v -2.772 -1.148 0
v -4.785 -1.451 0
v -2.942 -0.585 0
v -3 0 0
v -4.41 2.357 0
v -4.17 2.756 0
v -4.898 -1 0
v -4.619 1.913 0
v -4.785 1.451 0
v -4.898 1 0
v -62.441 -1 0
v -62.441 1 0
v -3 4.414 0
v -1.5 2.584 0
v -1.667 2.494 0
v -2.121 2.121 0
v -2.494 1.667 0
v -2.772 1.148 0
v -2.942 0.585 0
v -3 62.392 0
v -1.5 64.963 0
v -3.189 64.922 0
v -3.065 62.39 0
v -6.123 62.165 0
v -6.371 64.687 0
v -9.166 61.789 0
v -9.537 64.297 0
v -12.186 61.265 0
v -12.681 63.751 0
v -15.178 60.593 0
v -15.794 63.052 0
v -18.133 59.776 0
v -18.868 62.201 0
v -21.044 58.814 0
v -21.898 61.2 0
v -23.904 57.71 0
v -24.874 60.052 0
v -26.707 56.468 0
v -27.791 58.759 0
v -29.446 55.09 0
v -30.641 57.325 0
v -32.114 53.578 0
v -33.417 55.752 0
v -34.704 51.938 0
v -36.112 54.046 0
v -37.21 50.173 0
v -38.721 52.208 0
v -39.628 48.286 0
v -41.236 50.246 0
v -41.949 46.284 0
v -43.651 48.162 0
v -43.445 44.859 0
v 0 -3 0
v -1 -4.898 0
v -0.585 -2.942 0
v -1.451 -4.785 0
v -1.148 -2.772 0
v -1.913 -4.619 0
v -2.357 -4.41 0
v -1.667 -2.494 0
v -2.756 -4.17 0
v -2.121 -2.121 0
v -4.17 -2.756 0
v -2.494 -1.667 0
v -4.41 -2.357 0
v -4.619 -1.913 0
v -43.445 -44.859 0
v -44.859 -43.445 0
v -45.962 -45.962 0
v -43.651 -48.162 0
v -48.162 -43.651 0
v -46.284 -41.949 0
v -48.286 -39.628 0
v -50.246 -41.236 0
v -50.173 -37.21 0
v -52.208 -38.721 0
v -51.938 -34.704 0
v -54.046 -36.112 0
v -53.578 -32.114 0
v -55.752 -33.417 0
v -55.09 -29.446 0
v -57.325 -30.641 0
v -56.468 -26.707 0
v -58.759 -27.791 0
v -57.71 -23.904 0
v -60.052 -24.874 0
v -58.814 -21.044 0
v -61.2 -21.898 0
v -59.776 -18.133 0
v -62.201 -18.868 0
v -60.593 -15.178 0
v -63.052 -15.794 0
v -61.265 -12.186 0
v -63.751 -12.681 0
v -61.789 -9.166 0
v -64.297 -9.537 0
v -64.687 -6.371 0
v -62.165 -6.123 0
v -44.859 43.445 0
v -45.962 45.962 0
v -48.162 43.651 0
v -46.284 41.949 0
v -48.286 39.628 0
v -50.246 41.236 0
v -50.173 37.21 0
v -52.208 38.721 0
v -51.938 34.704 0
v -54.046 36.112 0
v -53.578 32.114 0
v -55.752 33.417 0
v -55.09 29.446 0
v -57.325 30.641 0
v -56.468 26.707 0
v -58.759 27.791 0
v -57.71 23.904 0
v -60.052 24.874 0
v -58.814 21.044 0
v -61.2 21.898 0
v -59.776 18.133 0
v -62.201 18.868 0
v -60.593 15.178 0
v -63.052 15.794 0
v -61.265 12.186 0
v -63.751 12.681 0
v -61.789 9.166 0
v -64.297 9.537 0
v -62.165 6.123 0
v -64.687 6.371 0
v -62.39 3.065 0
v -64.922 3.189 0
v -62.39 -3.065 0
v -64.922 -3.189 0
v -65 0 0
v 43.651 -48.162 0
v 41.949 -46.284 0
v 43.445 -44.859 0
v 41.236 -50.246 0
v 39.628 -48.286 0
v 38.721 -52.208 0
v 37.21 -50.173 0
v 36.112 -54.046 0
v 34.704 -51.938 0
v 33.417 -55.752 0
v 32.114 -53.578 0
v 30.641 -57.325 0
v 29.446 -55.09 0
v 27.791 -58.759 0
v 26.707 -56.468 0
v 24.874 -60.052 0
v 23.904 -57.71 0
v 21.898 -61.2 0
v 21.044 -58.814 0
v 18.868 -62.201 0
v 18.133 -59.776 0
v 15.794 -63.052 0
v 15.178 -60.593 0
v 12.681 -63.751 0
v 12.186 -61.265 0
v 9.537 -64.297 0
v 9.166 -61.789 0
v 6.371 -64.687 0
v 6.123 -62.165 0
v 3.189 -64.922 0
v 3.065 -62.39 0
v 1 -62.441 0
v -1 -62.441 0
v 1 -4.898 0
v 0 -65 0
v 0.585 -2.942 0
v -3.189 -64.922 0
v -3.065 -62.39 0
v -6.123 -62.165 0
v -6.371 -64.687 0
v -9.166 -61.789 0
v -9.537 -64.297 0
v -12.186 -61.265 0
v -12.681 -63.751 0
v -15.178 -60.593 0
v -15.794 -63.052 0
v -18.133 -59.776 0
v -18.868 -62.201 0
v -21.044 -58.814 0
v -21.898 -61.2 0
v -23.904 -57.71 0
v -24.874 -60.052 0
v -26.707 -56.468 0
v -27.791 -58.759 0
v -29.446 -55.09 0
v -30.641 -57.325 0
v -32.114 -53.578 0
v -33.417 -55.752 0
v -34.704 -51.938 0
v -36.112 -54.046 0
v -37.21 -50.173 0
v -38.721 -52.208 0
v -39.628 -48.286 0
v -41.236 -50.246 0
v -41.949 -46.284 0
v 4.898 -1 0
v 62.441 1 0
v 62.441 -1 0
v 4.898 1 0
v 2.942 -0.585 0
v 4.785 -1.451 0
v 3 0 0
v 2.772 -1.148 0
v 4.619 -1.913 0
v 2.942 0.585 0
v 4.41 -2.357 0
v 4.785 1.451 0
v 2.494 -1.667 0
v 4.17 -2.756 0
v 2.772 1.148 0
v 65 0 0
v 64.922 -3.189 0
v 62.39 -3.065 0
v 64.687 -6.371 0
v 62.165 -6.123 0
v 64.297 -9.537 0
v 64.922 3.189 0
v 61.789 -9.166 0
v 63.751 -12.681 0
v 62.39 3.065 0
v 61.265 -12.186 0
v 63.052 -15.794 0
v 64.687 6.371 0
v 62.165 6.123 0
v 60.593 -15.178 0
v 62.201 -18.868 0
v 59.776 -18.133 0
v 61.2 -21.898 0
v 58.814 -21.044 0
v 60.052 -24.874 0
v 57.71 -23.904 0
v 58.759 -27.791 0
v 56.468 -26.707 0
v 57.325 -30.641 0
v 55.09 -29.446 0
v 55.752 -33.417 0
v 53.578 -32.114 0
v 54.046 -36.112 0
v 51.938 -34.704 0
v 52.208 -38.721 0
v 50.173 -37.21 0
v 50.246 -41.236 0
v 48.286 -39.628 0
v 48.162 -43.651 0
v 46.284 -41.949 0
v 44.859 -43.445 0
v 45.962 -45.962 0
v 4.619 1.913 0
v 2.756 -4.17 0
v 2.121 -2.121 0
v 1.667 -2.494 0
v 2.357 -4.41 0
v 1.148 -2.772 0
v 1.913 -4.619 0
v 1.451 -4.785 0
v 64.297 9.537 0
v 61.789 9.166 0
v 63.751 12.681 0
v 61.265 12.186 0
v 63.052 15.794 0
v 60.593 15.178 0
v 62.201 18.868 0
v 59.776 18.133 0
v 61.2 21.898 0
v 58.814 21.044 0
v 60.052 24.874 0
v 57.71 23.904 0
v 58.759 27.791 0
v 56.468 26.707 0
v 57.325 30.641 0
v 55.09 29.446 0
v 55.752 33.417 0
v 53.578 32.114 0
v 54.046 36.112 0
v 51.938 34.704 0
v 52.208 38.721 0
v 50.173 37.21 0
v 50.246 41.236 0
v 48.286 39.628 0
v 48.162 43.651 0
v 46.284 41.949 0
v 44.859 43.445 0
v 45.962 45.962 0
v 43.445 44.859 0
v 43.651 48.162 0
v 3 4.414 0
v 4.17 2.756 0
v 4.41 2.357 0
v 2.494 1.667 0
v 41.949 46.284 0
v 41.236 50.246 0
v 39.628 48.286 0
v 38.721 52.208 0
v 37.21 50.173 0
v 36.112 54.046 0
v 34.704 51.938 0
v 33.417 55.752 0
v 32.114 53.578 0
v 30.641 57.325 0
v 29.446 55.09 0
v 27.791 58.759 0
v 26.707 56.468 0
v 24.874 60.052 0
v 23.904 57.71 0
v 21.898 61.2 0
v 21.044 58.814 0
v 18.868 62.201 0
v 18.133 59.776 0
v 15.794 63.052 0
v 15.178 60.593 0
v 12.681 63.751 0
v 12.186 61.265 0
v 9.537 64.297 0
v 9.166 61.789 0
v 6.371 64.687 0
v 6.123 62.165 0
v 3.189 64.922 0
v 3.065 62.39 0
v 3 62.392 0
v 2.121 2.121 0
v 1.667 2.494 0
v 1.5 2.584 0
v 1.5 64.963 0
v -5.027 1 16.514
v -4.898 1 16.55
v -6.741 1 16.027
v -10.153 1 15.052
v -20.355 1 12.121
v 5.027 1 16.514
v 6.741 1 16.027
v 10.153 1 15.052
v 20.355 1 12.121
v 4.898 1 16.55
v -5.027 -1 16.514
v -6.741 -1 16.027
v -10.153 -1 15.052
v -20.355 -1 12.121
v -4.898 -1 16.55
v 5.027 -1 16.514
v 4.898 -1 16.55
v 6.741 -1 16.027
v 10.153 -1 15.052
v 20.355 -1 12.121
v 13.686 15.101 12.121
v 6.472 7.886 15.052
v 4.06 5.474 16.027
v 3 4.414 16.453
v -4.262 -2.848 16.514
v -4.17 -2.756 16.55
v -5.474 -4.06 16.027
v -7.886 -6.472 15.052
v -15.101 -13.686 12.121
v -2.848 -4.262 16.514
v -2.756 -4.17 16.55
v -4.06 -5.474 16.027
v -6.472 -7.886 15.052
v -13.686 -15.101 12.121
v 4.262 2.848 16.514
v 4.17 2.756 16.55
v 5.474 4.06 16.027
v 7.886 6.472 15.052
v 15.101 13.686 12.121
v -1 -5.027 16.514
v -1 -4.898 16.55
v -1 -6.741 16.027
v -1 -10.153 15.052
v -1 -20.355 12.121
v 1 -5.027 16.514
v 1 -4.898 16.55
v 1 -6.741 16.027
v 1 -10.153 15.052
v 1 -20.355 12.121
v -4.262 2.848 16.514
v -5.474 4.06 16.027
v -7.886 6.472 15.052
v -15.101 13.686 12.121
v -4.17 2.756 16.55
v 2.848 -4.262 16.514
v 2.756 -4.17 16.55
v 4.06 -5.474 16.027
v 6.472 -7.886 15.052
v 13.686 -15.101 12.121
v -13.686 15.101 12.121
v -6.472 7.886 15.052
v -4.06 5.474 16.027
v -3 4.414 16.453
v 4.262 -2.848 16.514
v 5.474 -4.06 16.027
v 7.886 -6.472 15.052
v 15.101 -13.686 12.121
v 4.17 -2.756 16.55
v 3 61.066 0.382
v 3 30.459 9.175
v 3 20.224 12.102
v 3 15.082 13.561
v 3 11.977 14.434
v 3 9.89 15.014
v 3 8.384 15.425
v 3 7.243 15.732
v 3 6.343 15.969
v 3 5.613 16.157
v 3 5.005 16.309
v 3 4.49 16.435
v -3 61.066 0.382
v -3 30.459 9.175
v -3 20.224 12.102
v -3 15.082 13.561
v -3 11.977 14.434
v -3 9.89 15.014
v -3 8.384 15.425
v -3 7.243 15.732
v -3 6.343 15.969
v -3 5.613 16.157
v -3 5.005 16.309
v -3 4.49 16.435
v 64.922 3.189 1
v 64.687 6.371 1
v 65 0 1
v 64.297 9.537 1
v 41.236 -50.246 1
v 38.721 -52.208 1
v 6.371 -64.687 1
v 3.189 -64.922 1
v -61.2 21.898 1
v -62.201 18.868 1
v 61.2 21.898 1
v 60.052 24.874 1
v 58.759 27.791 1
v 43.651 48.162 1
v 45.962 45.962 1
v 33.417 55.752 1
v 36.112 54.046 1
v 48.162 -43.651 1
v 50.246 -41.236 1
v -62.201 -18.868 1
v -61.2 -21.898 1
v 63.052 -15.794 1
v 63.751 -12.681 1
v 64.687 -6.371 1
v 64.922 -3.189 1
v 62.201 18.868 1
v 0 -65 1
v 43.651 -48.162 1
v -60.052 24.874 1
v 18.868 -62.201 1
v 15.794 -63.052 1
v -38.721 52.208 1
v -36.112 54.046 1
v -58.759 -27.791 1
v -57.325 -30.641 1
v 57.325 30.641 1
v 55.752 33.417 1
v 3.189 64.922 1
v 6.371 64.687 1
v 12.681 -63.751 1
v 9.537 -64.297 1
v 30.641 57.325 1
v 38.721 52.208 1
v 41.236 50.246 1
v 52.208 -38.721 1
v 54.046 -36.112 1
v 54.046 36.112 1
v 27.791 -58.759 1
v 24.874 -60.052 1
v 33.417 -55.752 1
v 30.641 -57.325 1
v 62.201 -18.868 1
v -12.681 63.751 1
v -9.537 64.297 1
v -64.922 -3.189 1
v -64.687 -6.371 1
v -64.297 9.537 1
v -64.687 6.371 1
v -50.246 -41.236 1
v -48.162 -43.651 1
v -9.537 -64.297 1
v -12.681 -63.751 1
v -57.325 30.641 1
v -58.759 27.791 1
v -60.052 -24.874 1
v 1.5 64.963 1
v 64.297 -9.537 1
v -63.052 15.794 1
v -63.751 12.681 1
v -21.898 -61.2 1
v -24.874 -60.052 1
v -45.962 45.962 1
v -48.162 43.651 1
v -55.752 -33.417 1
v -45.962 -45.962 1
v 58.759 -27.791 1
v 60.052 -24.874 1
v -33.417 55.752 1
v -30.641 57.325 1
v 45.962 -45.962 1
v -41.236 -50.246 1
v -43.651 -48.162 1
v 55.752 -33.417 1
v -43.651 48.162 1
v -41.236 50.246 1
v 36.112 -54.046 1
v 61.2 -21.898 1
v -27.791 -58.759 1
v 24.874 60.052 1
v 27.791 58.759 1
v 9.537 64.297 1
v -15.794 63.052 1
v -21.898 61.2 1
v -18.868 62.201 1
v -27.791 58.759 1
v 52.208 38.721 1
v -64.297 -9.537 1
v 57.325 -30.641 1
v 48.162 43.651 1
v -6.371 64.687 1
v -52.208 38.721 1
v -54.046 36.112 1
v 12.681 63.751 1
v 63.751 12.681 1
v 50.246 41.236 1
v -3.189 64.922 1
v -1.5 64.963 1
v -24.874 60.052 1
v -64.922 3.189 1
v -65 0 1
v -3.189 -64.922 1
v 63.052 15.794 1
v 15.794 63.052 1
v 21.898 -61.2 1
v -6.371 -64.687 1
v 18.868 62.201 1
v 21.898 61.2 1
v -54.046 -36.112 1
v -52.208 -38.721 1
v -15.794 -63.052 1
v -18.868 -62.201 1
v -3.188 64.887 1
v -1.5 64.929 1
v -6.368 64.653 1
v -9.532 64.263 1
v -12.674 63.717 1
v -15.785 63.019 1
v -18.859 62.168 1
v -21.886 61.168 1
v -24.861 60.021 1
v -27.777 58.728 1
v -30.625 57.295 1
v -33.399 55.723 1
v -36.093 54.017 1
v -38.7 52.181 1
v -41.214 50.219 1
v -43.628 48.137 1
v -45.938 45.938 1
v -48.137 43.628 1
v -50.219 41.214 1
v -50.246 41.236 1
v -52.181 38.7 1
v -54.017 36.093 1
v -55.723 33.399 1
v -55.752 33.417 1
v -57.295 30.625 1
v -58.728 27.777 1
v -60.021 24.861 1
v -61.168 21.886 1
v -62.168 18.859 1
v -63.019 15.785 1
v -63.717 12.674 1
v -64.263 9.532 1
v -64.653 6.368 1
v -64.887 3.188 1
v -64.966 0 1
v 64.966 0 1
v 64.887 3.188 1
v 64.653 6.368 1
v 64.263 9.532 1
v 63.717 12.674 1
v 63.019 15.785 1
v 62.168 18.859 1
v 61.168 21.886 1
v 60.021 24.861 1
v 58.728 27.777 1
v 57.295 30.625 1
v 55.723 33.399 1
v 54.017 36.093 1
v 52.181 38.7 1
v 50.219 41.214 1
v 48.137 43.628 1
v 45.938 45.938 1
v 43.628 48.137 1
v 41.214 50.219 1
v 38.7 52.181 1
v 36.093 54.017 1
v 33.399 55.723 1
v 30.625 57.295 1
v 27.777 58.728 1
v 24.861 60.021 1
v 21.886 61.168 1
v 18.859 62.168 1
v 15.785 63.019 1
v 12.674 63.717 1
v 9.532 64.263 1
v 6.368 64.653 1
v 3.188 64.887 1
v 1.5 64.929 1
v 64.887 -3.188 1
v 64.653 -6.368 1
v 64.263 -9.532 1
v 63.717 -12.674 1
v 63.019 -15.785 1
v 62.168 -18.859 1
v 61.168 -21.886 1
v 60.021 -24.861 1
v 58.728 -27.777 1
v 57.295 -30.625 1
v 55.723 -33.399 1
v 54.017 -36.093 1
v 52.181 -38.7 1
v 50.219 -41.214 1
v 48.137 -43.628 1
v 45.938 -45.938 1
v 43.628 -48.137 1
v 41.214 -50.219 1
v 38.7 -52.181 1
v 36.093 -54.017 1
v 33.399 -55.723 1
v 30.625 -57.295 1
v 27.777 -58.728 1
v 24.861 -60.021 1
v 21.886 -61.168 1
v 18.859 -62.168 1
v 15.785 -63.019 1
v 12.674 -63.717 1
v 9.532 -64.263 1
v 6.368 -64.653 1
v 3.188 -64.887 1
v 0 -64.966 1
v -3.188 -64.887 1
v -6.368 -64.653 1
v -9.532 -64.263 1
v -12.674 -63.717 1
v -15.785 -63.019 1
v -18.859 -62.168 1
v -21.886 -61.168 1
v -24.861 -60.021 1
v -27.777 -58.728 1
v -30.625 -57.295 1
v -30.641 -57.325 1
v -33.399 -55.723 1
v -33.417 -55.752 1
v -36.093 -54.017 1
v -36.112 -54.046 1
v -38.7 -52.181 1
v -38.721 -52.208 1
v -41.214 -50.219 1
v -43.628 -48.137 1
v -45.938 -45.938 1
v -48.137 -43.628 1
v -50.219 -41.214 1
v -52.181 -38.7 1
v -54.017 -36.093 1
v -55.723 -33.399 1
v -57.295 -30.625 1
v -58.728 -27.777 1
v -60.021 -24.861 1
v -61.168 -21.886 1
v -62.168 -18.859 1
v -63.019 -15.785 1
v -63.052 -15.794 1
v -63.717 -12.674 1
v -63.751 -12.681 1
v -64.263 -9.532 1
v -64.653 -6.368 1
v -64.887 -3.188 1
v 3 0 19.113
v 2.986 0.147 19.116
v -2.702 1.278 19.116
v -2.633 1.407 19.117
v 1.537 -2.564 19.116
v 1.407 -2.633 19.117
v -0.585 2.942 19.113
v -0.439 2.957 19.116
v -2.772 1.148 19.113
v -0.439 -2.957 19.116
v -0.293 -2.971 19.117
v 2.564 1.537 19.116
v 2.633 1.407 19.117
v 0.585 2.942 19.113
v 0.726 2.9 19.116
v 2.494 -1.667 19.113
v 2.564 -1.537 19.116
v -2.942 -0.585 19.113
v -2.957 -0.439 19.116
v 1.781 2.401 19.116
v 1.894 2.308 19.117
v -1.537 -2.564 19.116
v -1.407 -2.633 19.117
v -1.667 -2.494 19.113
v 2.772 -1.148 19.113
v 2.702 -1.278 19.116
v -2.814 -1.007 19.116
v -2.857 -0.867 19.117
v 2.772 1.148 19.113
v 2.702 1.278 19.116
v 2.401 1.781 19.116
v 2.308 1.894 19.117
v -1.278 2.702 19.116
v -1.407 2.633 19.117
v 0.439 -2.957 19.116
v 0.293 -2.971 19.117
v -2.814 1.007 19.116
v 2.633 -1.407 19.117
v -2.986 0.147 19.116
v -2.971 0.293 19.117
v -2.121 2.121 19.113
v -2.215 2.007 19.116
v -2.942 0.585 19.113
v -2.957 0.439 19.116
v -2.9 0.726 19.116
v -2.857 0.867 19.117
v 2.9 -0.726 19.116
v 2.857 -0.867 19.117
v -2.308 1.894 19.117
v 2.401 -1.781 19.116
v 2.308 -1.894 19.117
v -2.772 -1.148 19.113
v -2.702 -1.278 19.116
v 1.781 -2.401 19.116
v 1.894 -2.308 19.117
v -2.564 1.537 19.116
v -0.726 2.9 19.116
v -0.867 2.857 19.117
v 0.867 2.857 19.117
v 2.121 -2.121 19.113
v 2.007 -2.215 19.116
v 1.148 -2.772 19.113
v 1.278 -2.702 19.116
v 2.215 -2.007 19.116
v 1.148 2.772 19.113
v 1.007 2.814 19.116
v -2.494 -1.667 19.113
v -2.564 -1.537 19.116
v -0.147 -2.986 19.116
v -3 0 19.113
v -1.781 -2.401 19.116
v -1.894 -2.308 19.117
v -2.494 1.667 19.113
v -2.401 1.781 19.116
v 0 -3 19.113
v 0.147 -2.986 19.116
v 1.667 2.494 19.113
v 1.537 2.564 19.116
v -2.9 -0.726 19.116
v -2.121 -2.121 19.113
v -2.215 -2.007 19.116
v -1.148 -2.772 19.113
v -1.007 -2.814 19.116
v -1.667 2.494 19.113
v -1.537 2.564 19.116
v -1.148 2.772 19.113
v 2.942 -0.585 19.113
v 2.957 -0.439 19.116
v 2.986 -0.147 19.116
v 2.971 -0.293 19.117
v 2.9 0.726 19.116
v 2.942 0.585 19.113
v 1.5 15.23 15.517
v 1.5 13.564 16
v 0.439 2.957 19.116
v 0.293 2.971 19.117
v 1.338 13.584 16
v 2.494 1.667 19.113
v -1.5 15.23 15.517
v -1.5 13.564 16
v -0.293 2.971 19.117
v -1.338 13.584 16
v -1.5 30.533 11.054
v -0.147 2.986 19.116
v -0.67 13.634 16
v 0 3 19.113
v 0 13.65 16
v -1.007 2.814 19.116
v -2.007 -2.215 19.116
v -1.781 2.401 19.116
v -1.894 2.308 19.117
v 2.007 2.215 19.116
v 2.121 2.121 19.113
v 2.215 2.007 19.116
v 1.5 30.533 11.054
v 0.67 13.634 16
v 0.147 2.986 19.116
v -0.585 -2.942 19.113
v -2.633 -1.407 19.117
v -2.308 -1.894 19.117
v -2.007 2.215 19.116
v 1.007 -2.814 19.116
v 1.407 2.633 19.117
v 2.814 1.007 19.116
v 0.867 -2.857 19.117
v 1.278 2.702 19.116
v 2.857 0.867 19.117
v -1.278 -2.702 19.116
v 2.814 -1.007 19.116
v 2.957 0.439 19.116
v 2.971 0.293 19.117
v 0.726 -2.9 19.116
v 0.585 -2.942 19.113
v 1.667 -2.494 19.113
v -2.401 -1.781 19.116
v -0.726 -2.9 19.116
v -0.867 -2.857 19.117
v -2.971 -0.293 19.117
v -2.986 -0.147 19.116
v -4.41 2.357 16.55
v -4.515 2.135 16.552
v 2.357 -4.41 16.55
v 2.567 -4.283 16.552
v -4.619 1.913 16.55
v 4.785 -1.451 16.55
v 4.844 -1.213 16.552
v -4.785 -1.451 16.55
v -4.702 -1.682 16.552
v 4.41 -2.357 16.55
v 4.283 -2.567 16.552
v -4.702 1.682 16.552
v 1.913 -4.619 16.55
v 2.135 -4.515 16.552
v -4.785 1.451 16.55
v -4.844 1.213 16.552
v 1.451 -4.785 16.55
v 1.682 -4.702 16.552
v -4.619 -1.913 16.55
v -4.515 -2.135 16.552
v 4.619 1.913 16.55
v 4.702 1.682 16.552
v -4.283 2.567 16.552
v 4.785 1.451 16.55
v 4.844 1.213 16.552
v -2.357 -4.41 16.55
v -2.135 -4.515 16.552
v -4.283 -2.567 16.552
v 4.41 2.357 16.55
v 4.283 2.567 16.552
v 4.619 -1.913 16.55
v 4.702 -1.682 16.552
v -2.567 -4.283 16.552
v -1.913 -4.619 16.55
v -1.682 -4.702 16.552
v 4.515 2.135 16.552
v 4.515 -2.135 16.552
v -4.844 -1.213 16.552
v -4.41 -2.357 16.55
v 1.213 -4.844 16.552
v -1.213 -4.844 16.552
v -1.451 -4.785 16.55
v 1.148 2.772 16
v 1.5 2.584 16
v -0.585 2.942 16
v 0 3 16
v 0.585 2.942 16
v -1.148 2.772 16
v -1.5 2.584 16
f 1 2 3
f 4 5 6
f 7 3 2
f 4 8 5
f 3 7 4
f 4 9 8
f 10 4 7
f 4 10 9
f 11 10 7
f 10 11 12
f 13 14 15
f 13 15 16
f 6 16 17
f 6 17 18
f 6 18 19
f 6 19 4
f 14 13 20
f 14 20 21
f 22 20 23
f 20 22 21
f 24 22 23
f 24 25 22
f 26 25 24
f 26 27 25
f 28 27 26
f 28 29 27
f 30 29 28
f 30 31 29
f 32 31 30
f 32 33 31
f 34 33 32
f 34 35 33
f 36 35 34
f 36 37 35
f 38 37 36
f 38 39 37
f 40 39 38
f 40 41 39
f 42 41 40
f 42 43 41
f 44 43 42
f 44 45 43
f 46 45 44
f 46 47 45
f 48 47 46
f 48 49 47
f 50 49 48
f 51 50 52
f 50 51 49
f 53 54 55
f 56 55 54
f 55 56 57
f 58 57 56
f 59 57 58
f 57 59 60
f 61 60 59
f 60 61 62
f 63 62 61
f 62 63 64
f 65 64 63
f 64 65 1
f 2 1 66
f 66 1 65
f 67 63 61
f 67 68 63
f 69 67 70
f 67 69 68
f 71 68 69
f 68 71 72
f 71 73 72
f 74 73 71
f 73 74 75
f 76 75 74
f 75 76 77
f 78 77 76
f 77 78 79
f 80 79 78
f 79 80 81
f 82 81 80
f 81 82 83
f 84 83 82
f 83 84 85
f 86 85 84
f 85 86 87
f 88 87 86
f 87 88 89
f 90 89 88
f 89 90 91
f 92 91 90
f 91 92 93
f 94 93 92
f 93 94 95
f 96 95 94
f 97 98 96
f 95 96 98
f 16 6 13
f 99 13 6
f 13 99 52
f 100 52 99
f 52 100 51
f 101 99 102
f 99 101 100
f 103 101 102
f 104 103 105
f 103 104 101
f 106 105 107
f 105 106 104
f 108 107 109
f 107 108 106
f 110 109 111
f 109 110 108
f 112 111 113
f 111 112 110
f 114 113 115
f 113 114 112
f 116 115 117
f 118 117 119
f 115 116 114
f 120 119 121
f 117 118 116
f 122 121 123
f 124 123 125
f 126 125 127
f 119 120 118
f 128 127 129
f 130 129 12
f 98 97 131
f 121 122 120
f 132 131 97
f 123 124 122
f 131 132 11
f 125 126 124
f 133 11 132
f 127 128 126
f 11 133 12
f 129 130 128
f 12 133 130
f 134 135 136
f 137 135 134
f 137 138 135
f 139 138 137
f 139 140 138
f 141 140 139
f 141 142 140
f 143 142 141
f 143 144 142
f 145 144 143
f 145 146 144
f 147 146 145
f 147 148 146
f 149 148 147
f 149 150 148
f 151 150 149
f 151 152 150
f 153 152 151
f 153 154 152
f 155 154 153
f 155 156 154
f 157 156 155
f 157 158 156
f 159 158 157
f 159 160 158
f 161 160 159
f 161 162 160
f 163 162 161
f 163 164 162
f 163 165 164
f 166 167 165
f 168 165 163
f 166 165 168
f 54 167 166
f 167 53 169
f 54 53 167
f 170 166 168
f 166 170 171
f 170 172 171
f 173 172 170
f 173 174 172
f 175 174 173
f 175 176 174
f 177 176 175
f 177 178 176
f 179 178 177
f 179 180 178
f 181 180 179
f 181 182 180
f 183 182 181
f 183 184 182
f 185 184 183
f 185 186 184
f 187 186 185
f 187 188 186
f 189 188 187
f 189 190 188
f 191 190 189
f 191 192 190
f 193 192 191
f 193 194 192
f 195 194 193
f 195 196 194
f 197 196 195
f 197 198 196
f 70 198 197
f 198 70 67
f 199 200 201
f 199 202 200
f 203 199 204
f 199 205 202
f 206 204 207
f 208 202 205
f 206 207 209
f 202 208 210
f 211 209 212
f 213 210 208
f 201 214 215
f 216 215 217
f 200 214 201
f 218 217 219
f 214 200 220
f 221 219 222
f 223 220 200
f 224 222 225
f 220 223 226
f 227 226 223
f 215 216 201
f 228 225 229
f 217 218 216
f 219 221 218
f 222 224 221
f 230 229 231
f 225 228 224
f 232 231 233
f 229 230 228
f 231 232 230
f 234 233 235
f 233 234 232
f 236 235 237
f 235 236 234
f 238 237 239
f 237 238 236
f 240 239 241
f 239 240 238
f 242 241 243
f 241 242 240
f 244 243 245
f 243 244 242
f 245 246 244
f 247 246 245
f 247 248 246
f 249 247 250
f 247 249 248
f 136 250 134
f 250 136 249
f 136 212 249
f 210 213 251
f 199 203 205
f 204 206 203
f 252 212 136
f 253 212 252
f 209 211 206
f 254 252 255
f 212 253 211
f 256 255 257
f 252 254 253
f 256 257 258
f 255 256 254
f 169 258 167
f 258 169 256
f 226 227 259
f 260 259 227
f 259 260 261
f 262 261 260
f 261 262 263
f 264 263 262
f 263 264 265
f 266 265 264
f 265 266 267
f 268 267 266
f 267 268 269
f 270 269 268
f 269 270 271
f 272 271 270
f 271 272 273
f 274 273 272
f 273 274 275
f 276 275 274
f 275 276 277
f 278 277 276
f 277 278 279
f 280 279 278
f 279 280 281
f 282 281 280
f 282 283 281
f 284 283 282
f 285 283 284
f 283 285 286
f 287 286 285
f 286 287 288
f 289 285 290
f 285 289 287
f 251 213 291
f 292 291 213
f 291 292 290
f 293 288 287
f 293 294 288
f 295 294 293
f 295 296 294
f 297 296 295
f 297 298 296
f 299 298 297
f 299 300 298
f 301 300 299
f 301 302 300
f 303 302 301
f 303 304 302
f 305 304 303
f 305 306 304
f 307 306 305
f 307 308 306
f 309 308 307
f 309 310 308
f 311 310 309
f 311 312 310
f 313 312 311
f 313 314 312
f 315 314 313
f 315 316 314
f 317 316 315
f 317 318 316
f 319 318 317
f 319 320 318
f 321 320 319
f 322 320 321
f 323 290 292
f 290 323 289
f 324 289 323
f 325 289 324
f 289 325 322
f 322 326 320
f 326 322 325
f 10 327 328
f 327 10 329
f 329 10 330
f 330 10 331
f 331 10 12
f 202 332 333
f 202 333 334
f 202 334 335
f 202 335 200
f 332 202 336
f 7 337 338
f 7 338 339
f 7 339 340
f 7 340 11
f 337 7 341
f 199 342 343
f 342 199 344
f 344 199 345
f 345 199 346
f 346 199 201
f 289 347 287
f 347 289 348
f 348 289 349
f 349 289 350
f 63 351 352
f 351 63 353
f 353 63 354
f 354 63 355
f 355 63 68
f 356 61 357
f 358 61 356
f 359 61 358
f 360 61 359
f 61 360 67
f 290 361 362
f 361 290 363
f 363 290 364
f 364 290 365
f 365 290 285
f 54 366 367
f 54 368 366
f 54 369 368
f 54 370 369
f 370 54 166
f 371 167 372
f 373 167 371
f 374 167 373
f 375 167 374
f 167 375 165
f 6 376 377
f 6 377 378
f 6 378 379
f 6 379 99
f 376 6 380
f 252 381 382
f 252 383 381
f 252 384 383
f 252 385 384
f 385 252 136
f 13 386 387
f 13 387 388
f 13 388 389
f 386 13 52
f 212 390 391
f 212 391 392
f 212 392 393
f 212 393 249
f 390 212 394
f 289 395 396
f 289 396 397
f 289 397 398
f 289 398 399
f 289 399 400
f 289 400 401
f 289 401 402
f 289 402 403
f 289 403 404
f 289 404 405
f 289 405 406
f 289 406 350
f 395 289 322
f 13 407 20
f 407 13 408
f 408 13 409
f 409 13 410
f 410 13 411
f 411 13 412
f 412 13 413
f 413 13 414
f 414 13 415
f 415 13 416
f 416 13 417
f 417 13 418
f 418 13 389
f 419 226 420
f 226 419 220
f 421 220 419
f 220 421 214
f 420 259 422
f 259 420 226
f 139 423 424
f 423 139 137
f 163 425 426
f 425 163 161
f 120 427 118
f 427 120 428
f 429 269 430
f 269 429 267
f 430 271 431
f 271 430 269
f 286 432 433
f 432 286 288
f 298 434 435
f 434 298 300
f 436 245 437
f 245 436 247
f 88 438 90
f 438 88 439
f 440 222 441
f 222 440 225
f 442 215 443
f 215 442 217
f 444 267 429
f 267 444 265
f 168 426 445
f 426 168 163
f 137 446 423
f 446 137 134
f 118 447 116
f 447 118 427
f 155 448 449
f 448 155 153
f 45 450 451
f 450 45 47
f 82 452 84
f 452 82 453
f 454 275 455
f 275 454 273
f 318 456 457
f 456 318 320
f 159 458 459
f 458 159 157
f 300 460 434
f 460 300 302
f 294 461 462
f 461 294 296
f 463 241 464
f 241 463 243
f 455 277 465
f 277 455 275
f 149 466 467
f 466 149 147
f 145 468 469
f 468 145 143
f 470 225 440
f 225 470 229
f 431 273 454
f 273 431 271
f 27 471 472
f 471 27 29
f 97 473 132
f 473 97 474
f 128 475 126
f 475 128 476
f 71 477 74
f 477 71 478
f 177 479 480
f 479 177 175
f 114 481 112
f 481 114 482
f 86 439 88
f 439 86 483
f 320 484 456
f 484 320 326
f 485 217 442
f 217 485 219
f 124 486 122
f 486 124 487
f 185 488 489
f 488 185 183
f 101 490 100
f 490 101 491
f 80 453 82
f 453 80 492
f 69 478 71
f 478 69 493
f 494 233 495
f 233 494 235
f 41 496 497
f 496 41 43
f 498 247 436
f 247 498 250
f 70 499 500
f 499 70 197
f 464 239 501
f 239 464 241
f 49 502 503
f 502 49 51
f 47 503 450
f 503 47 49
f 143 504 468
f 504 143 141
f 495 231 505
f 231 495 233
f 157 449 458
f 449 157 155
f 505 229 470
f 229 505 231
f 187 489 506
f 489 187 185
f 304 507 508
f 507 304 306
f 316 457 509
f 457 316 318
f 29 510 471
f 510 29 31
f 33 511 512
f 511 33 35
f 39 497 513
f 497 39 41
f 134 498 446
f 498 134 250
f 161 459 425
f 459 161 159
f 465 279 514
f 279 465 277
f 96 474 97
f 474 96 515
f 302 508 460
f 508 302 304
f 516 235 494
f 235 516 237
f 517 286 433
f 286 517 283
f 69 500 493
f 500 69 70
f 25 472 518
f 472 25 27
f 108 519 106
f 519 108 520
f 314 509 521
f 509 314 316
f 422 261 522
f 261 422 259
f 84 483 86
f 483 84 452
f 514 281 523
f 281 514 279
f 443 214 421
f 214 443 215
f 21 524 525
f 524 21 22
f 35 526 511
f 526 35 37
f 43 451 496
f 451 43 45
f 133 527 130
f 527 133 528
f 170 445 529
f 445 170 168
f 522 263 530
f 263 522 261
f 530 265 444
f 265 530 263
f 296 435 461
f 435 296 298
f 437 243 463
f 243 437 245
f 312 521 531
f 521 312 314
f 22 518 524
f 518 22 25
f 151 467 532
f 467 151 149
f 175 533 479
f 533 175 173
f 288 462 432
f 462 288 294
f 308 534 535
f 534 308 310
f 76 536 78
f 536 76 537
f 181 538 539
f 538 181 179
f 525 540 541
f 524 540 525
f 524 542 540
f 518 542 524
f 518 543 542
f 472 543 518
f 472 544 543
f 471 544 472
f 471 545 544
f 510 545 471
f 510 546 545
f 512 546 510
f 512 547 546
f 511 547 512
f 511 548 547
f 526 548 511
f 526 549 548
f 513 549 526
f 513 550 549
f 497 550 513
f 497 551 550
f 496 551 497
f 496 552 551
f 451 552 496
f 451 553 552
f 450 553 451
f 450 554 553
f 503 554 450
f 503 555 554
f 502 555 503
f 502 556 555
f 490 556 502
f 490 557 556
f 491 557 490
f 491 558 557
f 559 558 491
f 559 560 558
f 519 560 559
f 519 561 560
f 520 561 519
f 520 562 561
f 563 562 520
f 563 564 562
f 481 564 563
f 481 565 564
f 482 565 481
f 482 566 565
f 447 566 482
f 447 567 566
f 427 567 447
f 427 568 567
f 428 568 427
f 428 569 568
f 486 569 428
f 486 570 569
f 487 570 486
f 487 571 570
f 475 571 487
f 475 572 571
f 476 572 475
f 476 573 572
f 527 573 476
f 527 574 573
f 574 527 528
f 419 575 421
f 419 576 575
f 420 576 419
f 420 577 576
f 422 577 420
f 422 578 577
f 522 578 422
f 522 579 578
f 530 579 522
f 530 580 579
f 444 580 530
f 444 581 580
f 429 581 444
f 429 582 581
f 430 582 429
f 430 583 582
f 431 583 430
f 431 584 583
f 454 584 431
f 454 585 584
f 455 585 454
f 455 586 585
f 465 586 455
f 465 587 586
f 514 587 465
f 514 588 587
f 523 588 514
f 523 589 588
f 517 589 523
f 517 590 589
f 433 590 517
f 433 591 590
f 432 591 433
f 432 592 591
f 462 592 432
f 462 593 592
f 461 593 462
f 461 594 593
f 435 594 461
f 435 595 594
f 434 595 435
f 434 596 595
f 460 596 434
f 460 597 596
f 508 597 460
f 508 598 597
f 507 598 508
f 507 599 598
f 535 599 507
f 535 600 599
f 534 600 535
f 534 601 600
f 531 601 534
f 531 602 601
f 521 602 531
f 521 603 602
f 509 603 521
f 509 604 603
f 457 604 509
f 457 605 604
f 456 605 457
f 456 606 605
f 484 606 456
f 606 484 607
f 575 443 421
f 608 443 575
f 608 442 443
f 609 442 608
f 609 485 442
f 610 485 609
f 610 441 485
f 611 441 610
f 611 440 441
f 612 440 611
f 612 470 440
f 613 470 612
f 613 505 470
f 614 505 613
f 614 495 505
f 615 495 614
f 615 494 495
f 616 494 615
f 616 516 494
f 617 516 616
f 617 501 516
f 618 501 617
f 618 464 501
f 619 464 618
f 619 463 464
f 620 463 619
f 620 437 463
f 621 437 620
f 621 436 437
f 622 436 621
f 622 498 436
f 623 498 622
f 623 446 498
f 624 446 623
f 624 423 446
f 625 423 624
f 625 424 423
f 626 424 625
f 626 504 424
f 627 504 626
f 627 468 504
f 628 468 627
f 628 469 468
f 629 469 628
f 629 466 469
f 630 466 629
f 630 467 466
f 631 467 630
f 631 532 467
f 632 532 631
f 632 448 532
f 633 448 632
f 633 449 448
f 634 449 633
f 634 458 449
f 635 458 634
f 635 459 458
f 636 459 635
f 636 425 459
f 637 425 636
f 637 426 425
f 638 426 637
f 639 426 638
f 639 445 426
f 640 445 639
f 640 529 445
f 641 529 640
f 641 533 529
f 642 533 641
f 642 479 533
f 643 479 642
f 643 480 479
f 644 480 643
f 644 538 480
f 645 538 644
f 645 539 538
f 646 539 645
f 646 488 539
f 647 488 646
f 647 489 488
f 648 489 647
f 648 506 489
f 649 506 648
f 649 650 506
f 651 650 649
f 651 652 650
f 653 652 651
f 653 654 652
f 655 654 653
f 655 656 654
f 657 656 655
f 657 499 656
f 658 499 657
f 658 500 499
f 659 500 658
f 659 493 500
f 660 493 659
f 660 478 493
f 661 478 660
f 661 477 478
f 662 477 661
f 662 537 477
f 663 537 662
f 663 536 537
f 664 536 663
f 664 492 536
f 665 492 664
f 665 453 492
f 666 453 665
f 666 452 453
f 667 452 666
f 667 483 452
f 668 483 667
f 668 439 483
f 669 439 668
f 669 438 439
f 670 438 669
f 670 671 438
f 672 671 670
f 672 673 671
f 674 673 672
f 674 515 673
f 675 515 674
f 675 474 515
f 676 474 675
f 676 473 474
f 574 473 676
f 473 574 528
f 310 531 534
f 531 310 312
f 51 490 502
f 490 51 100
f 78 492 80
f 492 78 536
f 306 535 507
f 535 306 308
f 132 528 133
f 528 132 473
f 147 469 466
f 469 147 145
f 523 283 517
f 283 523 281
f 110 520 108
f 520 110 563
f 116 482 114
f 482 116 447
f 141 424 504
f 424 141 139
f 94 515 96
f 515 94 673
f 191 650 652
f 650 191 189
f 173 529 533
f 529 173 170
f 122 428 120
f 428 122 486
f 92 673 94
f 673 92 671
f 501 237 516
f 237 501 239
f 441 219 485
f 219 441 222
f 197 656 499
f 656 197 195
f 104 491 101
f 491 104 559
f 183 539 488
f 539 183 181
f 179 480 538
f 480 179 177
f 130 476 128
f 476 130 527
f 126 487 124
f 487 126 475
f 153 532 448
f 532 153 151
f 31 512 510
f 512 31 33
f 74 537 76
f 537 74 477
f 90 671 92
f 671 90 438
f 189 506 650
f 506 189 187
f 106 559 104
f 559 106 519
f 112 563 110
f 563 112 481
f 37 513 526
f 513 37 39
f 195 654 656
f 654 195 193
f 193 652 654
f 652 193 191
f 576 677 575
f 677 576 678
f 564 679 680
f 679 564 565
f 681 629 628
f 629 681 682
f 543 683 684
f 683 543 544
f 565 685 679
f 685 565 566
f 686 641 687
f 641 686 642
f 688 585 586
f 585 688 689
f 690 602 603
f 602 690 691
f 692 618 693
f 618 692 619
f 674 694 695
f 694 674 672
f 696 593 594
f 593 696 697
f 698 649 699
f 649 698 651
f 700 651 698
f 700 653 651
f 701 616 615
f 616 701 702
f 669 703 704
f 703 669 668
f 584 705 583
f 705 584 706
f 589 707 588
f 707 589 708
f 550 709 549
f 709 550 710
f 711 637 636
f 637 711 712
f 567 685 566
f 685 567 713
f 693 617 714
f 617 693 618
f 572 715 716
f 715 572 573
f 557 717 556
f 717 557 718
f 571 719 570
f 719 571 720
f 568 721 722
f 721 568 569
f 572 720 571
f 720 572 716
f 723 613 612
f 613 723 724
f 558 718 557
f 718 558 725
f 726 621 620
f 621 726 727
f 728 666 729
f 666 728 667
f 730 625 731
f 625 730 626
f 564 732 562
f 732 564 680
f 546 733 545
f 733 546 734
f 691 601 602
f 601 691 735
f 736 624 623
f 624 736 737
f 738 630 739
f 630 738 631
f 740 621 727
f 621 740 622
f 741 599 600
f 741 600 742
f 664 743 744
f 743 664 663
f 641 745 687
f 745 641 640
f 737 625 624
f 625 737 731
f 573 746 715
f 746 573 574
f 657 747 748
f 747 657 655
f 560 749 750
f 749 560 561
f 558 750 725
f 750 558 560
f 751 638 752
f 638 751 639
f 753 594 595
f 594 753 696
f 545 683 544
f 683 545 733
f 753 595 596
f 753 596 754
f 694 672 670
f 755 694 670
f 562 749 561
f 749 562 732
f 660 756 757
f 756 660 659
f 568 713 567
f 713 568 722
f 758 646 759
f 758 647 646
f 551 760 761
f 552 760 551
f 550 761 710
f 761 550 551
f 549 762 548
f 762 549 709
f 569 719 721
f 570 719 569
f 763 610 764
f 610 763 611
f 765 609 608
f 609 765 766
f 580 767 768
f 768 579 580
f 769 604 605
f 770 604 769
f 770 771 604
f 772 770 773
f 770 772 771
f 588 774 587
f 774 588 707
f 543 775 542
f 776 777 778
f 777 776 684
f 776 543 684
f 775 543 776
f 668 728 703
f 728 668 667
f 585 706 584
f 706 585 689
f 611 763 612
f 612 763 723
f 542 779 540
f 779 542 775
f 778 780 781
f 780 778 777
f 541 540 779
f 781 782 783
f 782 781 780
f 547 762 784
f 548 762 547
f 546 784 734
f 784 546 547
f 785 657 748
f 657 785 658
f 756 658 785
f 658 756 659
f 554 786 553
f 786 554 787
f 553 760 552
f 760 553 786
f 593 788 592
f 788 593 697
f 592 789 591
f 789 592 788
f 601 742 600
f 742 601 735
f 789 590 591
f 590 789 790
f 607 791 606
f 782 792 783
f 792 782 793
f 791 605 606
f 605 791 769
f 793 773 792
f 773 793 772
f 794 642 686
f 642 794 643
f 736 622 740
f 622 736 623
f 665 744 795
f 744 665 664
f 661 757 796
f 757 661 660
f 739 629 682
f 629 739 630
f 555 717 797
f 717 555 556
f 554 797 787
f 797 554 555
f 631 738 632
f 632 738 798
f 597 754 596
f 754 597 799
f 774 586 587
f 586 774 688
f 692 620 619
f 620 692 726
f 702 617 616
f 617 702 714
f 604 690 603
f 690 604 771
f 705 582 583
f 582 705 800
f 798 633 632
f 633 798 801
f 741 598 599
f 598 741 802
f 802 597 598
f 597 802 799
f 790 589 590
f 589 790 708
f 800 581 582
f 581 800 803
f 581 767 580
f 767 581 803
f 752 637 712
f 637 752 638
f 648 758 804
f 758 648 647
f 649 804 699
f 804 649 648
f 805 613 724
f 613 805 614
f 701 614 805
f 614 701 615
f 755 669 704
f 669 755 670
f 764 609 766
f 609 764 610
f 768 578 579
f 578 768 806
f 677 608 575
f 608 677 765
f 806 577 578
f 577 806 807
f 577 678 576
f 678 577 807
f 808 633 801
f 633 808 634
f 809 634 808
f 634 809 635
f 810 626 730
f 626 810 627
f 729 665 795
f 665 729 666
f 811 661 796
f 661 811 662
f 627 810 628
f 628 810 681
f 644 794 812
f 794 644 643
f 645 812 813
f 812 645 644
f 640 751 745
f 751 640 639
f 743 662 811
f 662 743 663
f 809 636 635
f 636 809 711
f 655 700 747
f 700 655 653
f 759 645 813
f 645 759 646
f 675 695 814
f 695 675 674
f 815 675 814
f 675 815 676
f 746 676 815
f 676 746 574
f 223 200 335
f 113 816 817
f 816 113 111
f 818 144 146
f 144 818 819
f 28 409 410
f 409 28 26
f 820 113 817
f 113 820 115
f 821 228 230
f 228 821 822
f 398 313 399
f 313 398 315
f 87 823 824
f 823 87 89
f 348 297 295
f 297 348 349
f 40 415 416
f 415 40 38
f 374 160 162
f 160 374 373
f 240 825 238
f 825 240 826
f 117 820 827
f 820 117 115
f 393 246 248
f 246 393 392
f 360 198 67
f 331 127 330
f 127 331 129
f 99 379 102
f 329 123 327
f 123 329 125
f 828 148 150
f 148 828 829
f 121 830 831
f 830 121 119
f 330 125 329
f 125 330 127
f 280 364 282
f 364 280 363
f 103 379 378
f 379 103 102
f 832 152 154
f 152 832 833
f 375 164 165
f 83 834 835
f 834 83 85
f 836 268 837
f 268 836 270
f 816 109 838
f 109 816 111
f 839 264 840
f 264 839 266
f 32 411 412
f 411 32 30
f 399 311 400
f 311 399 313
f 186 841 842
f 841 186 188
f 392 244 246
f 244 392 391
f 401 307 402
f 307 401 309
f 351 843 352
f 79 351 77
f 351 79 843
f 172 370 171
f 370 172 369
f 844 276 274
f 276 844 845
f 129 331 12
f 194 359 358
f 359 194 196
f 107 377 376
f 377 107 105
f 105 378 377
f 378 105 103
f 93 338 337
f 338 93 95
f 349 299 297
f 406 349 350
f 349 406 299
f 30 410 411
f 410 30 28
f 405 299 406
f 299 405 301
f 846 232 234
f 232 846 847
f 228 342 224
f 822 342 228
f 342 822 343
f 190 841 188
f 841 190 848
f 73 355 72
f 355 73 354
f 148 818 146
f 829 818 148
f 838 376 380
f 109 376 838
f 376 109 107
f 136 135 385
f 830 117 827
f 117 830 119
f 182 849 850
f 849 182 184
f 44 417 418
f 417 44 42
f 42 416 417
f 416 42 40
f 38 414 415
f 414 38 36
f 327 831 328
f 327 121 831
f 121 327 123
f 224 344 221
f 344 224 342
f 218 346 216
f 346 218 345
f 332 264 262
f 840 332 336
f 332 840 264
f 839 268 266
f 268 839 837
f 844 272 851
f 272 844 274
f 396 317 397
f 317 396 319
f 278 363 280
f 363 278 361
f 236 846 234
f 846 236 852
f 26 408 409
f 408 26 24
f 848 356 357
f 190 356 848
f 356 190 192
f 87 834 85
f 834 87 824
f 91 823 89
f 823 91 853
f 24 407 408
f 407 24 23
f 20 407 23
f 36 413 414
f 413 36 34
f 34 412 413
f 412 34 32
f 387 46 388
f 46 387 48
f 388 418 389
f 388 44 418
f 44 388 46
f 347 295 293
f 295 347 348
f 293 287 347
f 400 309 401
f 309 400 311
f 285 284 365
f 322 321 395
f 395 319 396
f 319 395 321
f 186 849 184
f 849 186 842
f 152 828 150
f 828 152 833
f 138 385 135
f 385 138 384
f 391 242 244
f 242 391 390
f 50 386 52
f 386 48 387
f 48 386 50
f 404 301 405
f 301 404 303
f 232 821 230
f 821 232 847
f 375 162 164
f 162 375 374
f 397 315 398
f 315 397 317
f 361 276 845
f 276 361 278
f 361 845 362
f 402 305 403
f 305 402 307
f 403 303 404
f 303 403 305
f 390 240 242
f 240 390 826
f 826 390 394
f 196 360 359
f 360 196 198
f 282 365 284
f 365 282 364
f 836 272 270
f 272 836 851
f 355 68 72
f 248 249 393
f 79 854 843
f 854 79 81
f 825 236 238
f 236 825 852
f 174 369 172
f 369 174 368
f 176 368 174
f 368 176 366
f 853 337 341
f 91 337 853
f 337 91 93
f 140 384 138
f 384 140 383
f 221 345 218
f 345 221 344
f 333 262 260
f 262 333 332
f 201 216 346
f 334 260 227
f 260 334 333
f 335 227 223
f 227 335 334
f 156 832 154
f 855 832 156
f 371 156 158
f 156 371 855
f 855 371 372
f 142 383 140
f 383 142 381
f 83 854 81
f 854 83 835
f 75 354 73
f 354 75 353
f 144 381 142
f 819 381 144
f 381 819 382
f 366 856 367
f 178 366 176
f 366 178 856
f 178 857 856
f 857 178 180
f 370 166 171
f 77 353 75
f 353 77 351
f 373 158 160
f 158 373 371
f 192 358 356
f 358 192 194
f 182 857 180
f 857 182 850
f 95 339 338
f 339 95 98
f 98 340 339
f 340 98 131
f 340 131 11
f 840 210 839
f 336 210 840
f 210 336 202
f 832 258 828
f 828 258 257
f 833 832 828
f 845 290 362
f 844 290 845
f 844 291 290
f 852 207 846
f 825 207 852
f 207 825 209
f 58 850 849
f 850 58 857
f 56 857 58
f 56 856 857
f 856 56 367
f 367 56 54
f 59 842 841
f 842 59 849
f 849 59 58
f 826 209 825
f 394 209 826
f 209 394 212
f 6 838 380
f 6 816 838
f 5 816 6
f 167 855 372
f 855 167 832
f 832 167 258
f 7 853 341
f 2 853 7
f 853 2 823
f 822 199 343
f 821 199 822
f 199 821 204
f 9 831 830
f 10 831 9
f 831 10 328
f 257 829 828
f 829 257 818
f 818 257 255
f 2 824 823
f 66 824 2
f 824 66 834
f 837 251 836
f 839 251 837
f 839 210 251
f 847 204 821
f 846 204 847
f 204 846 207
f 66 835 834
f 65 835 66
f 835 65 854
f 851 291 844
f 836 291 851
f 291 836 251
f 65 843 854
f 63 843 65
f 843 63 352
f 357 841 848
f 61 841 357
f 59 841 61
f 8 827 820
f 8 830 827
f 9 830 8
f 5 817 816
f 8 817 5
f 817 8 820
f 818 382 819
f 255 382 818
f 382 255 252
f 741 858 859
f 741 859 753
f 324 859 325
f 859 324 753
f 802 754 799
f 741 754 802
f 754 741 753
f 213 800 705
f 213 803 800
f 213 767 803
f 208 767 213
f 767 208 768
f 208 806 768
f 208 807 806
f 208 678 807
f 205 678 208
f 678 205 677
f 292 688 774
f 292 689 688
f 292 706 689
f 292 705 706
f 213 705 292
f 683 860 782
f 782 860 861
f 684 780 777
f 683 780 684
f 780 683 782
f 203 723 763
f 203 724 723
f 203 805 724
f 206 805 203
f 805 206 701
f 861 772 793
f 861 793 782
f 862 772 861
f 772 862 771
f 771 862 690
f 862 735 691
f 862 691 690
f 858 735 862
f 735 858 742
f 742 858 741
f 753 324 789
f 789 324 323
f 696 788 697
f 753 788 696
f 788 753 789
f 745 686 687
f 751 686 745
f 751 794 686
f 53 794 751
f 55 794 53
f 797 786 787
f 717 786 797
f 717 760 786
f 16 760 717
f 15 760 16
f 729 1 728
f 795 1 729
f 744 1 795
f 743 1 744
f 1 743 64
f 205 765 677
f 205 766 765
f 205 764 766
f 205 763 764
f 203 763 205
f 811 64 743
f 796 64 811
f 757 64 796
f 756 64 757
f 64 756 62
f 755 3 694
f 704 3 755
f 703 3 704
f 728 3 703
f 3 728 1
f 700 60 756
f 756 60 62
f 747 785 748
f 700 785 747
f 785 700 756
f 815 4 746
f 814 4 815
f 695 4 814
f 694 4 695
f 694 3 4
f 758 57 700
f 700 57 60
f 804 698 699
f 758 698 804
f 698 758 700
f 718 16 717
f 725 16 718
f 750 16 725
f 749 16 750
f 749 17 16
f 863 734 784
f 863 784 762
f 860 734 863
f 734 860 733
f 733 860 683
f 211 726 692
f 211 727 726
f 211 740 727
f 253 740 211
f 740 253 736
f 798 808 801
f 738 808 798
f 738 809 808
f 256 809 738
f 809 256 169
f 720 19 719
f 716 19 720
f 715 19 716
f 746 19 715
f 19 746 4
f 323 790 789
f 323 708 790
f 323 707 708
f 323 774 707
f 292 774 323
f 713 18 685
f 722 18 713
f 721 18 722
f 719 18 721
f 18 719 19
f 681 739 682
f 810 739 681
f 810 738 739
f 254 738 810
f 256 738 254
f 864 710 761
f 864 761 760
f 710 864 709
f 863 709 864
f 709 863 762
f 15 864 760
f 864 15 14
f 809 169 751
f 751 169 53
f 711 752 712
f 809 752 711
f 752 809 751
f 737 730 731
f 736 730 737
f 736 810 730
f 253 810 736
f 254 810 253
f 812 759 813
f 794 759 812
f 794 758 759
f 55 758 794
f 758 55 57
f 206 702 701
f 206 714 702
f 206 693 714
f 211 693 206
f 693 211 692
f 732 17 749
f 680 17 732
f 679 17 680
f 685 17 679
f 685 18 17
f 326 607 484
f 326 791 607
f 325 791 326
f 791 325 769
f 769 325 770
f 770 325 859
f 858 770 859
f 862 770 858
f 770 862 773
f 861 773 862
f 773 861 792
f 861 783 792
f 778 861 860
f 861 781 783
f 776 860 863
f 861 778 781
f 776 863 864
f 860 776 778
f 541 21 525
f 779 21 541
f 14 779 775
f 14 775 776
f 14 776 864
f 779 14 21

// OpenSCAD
$fn=16;

height = 20;
dia = 130;
inner_mount_hole_dia = 6;
top_shift = 3;

difference() {
  union() {
    intersection() {
      cylinder(d1=dia, d2=0, h=height);
      union() {
          
    translate([-inner_mount_hole_dia/2,0,-1])
    cube([inner_mount_hole_dia,dia,height*2]);
          
        for(i=[0:45:180-45] ) {
          rotate([0,0, i])
          translate([0,0,height/2])
          cube([dia, 2, height], center=true);
        }

        //translate([0,-4,0])
        //cube([dia, 8, height]);
      }
    }
    
    difference() {
      union() {
          cylinder(d1=dia, d2=dia, h=1, $fn=128);
          translate([0,0,1-0.01])
          cylinder(d1=dia, d2=0, h=height-1, $fn=128);
      }
      translate([0,0,-0.01])
      cylinder(d1=dia-5, d2=0, h=height-2, $fn=128);
    }
    

    cylinder(d=inner_mount_hole_dia+4, h=height-2, $fn=64);     // middle cylinder
    
  }  // union

  /*
  translate([10,-2.5,-0.01])
  cube([dia, 5, height]);

  translate([0,-2.5,-0.01])
  cube([dia, 5, height-5]);
  */
  
  translate([0,0,-0.01])
  cylinder(d=inner_mount_hole_dia, h=height*2, $fn=32);

    translate([-1.5,0,-1])
    cube([3,dia,height-top_shift]);



}
